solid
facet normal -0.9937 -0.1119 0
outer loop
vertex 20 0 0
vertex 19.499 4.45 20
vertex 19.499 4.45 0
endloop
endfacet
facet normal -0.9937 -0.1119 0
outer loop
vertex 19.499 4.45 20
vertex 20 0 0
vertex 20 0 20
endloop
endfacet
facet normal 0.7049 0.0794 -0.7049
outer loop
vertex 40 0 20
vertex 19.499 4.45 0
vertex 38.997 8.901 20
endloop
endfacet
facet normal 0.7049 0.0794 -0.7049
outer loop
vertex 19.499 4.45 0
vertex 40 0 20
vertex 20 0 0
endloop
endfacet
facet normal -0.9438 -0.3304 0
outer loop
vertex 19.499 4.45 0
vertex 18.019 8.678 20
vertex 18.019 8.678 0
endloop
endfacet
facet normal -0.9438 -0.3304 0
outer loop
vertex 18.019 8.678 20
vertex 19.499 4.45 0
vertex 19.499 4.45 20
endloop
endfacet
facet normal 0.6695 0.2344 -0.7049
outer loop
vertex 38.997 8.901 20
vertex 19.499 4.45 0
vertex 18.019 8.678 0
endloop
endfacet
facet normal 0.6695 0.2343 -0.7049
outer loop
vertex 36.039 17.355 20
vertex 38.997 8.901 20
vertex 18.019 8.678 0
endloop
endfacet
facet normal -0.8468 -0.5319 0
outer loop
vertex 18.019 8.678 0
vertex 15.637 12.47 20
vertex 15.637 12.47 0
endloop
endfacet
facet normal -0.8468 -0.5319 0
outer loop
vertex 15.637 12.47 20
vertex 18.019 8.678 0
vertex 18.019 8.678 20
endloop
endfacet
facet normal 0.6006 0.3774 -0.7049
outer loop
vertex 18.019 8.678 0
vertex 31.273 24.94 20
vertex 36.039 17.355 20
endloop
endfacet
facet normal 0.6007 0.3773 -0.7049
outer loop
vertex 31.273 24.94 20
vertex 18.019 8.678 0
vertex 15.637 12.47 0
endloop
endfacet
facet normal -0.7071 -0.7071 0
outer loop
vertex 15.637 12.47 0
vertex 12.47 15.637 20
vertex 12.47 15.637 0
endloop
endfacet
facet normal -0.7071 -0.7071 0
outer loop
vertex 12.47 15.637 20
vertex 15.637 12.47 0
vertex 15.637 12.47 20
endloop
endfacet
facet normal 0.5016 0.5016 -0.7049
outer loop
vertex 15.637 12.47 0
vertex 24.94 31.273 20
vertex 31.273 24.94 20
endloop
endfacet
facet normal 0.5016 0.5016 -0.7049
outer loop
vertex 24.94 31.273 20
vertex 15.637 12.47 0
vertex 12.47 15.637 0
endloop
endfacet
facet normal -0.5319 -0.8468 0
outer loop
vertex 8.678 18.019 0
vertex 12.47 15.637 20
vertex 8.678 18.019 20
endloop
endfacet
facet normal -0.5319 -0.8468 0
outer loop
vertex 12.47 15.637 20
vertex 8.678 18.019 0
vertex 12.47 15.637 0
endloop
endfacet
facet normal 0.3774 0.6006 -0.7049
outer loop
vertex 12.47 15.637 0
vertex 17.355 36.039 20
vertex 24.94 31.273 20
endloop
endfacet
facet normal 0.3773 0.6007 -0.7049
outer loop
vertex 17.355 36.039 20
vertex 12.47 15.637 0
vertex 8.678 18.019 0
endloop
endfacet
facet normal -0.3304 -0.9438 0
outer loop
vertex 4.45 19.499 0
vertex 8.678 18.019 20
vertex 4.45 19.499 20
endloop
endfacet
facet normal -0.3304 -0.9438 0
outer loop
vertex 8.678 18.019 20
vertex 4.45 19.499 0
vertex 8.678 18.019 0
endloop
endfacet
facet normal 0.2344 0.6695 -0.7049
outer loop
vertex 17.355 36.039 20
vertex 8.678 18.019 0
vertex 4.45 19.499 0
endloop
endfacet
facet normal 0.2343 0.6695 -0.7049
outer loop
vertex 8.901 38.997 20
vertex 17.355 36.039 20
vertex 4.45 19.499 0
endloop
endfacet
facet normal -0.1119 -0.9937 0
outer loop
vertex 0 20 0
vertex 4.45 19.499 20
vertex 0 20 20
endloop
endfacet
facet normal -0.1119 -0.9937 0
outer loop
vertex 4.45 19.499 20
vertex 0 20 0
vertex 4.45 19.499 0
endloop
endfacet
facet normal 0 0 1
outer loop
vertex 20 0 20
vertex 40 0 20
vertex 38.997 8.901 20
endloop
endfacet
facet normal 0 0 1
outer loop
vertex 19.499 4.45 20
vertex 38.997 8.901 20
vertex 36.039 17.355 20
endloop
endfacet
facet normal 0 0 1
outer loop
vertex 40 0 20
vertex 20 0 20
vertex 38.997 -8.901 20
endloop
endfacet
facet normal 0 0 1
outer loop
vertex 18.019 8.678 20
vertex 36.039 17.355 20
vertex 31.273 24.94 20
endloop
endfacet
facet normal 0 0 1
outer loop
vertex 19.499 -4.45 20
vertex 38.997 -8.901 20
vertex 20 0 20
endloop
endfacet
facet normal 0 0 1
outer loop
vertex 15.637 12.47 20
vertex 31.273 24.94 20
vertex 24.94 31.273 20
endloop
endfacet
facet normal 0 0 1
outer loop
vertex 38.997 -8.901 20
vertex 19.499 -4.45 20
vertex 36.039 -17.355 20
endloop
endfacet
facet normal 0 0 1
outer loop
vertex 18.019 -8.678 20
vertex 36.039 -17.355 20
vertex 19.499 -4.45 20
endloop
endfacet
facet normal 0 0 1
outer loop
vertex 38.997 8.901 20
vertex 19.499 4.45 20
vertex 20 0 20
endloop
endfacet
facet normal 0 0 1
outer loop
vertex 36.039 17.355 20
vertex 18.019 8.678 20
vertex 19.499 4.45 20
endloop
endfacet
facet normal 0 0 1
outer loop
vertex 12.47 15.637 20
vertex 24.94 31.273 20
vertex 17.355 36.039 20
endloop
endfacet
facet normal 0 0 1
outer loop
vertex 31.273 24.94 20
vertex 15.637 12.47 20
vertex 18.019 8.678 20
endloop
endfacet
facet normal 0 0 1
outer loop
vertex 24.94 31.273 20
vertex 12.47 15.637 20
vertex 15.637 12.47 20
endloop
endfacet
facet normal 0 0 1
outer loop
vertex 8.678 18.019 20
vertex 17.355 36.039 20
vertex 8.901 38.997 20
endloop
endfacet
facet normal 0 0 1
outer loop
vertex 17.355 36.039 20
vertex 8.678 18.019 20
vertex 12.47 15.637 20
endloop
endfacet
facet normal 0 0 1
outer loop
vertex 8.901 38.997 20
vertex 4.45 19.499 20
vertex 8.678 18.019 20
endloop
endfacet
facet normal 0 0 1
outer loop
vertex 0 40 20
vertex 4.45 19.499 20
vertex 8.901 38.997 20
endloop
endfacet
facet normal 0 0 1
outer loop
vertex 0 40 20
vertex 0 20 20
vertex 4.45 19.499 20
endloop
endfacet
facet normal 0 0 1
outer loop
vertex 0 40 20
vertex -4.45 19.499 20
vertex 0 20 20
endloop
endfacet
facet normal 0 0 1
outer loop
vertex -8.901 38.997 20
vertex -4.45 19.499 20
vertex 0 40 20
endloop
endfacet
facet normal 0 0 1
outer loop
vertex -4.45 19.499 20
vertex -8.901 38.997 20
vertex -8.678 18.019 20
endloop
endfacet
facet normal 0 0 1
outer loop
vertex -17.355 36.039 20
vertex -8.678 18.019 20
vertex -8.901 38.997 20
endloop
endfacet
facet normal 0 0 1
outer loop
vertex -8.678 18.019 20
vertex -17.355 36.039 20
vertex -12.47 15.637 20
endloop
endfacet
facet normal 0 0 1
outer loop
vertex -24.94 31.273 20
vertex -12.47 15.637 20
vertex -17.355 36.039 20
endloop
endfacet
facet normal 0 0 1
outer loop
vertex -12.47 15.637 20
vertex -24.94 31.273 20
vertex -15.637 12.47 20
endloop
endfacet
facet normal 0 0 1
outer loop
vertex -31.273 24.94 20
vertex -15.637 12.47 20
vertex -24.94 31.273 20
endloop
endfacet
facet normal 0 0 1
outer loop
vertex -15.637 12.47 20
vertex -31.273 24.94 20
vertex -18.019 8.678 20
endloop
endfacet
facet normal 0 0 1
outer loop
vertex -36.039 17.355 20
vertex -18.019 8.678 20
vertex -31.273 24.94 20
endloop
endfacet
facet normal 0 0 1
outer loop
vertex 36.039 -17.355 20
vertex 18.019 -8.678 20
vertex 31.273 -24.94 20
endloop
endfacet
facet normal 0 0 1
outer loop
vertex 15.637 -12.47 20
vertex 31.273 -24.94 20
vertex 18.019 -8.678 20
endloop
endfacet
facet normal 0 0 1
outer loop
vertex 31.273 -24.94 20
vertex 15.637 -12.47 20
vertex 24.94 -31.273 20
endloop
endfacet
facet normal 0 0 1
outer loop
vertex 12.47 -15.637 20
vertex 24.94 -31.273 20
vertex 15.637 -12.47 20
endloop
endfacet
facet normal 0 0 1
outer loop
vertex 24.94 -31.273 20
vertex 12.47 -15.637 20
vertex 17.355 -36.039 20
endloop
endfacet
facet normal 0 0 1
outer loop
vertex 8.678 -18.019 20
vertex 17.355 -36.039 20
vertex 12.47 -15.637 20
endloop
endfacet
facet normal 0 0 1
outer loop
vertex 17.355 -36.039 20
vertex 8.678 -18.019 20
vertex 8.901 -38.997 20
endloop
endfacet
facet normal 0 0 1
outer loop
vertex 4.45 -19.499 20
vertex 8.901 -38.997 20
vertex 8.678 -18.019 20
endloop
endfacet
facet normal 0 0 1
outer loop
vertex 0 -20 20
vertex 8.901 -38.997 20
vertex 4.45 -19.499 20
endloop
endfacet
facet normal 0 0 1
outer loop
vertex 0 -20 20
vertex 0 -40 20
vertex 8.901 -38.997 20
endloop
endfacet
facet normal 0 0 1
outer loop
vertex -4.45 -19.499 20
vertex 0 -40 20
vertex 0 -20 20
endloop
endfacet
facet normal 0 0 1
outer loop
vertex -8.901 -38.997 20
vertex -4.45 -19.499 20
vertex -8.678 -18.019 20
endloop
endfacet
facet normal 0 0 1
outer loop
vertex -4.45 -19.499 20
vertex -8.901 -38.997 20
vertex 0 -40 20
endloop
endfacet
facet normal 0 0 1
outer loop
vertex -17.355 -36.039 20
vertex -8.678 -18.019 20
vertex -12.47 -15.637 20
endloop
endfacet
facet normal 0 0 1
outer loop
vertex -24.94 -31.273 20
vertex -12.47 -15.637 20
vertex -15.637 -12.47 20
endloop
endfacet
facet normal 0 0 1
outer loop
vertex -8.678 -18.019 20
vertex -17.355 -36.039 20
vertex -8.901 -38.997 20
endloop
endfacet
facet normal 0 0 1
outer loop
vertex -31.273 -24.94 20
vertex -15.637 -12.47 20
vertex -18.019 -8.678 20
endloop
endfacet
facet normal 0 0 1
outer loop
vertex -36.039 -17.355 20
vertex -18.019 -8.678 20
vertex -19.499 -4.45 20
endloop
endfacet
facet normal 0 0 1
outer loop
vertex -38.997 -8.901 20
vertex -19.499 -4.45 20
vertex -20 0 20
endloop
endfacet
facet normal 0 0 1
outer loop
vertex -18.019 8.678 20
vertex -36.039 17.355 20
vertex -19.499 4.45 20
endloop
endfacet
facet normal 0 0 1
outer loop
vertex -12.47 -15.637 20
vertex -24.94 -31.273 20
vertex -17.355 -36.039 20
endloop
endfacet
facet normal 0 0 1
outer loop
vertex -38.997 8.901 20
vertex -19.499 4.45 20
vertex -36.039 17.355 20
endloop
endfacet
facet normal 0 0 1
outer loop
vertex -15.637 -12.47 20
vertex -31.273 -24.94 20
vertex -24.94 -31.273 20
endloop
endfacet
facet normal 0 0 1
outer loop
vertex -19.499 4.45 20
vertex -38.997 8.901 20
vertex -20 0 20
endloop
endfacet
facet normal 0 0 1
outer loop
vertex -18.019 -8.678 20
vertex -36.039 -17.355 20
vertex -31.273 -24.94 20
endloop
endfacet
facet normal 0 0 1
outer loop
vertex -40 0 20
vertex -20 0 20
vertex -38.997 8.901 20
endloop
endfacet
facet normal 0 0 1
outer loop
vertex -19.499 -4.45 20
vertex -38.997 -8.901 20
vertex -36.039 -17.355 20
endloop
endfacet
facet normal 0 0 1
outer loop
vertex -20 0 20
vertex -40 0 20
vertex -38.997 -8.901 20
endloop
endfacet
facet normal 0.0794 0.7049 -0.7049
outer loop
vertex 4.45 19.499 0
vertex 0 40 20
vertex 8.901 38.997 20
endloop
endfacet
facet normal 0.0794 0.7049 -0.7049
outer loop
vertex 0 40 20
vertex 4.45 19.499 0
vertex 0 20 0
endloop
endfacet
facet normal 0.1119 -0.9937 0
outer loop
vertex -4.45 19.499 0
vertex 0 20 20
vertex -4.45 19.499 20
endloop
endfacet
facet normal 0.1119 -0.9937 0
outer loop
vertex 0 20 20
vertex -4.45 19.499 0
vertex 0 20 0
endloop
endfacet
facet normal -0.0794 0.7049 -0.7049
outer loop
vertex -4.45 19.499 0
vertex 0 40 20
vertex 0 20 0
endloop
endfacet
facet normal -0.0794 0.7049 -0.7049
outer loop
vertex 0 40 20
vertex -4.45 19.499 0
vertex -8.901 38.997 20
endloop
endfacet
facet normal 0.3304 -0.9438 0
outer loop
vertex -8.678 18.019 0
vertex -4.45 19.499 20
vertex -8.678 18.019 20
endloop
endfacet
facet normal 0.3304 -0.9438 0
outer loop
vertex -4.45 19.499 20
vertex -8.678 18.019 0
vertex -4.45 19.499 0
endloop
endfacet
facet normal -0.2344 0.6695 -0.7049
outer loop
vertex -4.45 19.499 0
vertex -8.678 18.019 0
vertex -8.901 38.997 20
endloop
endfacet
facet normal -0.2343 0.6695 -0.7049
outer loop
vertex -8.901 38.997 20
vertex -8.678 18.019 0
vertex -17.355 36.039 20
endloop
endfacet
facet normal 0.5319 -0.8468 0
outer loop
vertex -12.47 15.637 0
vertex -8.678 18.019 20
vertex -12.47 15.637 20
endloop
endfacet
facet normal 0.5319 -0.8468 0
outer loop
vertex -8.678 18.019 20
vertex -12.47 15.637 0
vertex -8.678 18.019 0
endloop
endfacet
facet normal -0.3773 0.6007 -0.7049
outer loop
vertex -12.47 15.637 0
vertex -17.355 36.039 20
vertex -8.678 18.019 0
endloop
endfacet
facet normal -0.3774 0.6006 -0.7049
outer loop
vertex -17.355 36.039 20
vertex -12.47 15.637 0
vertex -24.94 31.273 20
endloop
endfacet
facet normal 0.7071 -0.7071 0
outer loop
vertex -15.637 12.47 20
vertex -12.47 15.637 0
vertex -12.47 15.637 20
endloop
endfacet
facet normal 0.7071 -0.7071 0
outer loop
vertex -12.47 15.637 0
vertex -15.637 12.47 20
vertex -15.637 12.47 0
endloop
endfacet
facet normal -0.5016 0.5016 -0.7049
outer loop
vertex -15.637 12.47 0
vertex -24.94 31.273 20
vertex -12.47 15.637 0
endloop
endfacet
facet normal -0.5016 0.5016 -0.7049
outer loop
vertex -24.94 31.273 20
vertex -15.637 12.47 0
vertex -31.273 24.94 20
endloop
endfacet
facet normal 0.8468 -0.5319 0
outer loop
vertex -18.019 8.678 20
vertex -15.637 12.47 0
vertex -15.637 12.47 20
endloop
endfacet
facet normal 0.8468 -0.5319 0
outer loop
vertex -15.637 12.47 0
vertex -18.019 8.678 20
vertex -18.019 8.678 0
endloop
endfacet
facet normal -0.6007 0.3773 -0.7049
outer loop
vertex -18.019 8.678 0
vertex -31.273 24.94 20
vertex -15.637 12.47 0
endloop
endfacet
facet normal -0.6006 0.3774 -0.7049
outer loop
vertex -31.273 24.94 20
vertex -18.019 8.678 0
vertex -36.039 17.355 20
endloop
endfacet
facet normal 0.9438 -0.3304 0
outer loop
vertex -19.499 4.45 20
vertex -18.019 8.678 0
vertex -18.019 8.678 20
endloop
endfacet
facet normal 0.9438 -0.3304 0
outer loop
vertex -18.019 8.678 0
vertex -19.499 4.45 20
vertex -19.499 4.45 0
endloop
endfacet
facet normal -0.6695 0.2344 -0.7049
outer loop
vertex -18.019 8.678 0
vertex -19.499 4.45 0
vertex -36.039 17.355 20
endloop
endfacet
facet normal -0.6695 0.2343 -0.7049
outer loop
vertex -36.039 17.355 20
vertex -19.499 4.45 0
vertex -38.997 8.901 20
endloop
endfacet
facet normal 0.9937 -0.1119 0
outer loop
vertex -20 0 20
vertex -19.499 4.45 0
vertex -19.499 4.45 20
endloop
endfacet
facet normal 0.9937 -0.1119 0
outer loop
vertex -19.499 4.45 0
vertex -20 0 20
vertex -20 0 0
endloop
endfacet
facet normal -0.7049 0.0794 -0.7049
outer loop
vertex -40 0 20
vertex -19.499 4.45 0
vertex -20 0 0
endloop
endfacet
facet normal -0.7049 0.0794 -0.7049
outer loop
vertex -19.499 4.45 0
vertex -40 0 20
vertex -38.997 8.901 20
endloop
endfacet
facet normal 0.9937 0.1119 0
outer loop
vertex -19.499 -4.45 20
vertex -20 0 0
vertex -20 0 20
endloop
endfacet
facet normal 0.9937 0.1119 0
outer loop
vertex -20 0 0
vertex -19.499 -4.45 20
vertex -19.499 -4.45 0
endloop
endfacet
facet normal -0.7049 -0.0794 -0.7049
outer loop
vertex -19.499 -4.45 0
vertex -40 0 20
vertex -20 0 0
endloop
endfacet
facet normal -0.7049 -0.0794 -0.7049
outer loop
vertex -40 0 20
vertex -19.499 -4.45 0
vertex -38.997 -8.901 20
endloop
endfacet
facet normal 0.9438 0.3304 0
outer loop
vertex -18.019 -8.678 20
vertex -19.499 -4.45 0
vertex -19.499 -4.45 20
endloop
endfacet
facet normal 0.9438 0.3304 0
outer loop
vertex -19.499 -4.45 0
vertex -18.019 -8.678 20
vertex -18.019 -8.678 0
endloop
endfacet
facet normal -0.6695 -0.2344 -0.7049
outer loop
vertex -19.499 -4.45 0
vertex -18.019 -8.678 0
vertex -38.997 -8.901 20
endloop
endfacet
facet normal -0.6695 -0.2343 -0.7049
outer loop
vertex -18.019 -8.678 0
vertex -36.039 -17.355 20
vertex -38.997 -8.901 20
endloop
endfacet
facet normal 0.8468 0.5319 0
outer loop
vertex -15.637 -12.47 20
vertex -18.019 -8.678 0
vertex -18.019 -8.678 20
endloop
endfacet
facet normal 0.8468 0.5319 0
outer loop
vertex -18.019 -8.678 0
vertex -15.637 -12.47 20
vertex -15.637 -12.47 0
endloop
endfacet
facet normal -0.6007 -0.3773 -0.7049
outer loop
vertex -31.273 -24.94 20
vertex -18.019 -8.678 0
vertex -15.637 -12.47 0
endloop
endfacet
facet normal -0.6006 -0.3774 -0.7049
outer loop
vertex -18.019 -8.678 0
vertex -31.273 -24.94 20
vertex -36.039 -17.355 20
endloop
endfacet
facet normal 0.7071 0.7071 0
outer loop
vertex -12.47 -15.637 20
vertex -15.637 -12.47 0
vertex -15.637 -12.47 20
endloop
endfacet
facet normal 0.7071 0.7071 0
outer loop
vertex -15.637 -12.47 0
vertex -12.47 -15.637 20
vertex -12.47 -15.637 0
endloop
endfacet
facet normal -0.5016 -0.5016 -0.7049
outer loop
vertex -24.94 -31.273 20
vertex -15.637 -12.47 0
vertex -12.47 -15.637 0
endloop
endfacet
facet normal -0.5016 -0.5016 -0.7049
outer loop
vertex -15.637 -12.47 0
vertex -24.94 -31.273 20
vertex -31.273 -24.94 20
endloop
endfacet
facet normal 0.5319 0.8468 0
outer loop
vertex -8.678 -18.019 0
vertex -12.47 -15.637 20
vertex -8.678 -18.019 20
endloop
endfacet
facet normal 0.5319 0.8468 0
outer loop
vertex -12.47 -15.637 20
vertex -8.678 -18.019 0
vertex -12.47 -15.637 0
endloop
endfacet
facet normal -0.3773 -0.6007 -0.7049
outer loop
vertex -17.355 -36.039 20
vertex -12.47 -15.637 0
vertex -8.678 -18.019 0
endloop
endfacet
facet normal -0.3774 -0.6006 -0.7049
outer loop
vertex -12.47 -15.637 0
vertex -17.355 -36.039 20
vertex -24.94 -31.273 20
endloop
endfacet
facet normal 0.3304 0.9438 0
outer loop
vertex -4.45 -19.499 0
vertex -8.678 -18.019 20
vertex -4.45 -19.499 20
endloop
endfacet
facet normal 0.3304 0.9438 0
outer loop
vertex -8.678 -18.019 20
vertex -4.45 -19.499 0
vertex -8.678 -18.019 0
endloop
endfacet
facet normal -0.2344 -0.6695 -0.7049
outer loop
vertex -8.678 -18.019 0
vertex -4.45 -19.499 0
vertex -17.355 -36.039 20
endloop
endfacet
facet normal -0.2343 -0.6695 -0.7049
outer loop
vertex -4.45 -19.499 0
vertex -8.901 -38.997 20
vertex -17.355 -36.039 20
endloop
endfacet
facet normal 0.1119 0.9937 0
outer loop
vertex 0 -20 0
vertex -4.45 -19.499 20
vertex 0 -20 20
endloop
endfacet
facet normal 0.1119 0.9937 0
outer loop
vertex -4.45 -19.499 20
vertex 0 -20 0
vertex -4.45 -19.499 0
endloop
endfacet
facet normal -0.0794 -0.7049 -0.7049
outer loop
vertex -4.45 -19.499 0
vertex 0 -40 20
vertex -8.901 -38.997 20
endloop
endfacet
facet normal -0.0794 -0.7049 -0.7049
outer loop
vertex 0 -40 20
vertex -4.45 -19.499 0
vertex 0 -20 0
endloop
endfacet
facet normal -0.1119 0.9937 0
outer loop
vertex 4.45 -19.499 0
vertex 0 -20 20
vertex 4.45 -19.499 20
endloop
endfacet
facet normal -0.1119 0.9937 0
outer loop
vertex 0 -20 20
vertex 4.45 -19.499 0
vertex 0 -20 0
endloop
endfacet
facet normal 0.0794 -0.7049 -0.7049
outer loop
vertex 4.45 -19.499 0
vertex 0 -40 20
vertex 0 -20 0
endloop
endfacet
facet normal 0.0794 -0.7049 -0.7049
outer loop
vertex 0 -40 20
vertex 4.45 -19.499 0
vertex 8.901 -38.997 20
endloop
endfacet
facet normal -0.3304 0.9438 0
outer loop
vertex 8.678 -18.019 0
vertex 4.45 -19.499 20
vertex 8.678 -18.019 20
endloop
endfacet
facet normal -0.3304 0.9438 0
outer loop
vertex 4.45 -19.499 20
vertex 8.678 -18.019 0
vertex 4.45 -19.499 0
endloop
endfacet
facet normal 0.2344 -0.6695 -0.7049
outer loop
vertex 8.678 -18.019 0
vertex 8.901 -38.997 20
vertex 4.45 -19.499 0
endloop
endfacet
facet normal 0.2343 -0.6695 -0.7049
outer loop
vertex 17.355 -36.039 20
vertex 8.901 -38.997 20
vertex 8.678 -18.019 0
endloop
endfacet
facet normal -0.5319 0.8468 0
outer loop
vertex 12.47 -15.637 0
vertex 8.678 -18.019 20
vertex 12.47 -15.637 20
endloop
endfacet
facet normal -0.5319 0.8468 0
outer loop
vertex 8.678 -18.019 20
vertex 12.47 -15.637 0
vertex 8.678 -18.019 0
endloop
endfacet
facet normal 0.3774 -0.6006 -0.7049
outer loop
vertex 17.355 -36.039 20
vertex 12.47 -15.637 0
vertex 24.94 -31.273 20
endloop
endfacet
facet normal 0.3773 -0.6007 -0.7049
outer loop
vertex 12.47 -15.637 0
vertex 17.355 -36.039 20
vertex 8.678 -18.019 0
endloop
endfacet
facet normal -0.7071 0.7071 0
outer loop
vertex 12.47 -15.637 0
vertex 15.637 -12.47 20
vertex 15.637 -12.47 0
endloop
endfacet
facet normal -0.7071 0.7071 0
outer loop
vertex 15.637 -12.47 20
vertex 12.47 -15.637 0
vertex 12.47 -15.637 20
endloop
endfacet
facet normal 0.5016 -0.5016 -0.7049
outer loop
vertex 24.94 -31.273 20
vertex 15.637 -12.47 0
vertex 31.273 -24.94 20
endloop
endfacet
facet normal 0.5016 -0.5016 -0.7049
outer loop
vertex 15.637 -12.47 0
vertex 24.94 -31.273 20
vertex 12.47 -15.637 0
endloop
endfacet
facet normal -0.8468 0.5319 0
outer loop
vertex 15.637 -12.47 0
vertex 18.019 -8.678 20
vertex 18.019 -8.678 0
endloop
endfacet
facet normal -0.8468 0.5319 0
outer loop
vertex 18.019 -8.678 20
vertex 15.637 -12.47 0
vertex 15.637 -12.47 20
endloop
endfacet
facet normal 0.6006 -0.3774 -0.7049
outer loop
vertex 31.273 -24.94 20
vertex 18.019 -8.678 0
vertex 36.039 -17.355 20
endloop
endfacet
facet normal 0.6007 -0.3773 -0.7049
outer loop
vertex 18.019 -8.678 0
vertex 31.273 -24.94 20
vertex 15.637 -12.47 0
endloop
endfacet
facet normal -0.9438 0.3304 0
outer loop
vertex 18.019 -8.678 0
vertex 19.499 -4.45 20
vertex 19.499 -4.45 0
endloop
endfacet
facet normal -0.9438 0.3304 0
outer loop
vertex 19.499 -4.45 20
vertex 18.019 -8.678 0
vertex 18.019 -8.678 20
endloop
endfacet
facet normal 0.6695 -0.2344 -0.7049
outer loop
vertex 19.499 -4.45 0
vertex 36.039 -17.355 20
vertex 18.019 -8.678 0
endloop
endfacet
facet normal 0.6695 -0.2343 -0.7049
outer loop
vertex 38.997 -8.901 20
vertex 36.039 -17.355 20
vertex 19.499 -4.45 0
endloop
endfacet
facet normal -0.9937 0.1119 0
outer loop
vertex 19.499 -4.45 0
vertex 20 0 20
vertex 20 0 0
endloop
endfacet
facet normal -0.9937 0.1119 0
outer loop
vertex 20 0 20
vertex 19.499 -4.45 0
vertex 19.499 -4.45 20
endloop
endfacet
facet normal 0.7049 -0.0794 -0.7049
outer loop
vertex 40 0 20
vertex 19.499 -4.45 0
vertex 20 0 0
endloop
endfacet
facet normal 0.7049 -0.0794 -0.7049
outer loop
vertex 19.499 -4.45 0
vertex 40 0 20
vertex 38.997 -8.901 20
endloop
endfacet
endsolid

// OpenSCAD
// Module to create a single quarter-cylinder wedge block
module curved_wedge_block() {
    rotate_extrude(angle=90, convexity=10)
        translate([20, 0, 0])
            polygon(points=[[0,0], [0,20], [20,20]]);
}

// Arrange four curved wedge blocks in a circular pattern
module layer_1() {
    for (i = [0:3]) {
        rotate([0, 0, i * 90])
            curved_wedge_block();
    }
}

// Call the layer module to render the model
layer_1();
